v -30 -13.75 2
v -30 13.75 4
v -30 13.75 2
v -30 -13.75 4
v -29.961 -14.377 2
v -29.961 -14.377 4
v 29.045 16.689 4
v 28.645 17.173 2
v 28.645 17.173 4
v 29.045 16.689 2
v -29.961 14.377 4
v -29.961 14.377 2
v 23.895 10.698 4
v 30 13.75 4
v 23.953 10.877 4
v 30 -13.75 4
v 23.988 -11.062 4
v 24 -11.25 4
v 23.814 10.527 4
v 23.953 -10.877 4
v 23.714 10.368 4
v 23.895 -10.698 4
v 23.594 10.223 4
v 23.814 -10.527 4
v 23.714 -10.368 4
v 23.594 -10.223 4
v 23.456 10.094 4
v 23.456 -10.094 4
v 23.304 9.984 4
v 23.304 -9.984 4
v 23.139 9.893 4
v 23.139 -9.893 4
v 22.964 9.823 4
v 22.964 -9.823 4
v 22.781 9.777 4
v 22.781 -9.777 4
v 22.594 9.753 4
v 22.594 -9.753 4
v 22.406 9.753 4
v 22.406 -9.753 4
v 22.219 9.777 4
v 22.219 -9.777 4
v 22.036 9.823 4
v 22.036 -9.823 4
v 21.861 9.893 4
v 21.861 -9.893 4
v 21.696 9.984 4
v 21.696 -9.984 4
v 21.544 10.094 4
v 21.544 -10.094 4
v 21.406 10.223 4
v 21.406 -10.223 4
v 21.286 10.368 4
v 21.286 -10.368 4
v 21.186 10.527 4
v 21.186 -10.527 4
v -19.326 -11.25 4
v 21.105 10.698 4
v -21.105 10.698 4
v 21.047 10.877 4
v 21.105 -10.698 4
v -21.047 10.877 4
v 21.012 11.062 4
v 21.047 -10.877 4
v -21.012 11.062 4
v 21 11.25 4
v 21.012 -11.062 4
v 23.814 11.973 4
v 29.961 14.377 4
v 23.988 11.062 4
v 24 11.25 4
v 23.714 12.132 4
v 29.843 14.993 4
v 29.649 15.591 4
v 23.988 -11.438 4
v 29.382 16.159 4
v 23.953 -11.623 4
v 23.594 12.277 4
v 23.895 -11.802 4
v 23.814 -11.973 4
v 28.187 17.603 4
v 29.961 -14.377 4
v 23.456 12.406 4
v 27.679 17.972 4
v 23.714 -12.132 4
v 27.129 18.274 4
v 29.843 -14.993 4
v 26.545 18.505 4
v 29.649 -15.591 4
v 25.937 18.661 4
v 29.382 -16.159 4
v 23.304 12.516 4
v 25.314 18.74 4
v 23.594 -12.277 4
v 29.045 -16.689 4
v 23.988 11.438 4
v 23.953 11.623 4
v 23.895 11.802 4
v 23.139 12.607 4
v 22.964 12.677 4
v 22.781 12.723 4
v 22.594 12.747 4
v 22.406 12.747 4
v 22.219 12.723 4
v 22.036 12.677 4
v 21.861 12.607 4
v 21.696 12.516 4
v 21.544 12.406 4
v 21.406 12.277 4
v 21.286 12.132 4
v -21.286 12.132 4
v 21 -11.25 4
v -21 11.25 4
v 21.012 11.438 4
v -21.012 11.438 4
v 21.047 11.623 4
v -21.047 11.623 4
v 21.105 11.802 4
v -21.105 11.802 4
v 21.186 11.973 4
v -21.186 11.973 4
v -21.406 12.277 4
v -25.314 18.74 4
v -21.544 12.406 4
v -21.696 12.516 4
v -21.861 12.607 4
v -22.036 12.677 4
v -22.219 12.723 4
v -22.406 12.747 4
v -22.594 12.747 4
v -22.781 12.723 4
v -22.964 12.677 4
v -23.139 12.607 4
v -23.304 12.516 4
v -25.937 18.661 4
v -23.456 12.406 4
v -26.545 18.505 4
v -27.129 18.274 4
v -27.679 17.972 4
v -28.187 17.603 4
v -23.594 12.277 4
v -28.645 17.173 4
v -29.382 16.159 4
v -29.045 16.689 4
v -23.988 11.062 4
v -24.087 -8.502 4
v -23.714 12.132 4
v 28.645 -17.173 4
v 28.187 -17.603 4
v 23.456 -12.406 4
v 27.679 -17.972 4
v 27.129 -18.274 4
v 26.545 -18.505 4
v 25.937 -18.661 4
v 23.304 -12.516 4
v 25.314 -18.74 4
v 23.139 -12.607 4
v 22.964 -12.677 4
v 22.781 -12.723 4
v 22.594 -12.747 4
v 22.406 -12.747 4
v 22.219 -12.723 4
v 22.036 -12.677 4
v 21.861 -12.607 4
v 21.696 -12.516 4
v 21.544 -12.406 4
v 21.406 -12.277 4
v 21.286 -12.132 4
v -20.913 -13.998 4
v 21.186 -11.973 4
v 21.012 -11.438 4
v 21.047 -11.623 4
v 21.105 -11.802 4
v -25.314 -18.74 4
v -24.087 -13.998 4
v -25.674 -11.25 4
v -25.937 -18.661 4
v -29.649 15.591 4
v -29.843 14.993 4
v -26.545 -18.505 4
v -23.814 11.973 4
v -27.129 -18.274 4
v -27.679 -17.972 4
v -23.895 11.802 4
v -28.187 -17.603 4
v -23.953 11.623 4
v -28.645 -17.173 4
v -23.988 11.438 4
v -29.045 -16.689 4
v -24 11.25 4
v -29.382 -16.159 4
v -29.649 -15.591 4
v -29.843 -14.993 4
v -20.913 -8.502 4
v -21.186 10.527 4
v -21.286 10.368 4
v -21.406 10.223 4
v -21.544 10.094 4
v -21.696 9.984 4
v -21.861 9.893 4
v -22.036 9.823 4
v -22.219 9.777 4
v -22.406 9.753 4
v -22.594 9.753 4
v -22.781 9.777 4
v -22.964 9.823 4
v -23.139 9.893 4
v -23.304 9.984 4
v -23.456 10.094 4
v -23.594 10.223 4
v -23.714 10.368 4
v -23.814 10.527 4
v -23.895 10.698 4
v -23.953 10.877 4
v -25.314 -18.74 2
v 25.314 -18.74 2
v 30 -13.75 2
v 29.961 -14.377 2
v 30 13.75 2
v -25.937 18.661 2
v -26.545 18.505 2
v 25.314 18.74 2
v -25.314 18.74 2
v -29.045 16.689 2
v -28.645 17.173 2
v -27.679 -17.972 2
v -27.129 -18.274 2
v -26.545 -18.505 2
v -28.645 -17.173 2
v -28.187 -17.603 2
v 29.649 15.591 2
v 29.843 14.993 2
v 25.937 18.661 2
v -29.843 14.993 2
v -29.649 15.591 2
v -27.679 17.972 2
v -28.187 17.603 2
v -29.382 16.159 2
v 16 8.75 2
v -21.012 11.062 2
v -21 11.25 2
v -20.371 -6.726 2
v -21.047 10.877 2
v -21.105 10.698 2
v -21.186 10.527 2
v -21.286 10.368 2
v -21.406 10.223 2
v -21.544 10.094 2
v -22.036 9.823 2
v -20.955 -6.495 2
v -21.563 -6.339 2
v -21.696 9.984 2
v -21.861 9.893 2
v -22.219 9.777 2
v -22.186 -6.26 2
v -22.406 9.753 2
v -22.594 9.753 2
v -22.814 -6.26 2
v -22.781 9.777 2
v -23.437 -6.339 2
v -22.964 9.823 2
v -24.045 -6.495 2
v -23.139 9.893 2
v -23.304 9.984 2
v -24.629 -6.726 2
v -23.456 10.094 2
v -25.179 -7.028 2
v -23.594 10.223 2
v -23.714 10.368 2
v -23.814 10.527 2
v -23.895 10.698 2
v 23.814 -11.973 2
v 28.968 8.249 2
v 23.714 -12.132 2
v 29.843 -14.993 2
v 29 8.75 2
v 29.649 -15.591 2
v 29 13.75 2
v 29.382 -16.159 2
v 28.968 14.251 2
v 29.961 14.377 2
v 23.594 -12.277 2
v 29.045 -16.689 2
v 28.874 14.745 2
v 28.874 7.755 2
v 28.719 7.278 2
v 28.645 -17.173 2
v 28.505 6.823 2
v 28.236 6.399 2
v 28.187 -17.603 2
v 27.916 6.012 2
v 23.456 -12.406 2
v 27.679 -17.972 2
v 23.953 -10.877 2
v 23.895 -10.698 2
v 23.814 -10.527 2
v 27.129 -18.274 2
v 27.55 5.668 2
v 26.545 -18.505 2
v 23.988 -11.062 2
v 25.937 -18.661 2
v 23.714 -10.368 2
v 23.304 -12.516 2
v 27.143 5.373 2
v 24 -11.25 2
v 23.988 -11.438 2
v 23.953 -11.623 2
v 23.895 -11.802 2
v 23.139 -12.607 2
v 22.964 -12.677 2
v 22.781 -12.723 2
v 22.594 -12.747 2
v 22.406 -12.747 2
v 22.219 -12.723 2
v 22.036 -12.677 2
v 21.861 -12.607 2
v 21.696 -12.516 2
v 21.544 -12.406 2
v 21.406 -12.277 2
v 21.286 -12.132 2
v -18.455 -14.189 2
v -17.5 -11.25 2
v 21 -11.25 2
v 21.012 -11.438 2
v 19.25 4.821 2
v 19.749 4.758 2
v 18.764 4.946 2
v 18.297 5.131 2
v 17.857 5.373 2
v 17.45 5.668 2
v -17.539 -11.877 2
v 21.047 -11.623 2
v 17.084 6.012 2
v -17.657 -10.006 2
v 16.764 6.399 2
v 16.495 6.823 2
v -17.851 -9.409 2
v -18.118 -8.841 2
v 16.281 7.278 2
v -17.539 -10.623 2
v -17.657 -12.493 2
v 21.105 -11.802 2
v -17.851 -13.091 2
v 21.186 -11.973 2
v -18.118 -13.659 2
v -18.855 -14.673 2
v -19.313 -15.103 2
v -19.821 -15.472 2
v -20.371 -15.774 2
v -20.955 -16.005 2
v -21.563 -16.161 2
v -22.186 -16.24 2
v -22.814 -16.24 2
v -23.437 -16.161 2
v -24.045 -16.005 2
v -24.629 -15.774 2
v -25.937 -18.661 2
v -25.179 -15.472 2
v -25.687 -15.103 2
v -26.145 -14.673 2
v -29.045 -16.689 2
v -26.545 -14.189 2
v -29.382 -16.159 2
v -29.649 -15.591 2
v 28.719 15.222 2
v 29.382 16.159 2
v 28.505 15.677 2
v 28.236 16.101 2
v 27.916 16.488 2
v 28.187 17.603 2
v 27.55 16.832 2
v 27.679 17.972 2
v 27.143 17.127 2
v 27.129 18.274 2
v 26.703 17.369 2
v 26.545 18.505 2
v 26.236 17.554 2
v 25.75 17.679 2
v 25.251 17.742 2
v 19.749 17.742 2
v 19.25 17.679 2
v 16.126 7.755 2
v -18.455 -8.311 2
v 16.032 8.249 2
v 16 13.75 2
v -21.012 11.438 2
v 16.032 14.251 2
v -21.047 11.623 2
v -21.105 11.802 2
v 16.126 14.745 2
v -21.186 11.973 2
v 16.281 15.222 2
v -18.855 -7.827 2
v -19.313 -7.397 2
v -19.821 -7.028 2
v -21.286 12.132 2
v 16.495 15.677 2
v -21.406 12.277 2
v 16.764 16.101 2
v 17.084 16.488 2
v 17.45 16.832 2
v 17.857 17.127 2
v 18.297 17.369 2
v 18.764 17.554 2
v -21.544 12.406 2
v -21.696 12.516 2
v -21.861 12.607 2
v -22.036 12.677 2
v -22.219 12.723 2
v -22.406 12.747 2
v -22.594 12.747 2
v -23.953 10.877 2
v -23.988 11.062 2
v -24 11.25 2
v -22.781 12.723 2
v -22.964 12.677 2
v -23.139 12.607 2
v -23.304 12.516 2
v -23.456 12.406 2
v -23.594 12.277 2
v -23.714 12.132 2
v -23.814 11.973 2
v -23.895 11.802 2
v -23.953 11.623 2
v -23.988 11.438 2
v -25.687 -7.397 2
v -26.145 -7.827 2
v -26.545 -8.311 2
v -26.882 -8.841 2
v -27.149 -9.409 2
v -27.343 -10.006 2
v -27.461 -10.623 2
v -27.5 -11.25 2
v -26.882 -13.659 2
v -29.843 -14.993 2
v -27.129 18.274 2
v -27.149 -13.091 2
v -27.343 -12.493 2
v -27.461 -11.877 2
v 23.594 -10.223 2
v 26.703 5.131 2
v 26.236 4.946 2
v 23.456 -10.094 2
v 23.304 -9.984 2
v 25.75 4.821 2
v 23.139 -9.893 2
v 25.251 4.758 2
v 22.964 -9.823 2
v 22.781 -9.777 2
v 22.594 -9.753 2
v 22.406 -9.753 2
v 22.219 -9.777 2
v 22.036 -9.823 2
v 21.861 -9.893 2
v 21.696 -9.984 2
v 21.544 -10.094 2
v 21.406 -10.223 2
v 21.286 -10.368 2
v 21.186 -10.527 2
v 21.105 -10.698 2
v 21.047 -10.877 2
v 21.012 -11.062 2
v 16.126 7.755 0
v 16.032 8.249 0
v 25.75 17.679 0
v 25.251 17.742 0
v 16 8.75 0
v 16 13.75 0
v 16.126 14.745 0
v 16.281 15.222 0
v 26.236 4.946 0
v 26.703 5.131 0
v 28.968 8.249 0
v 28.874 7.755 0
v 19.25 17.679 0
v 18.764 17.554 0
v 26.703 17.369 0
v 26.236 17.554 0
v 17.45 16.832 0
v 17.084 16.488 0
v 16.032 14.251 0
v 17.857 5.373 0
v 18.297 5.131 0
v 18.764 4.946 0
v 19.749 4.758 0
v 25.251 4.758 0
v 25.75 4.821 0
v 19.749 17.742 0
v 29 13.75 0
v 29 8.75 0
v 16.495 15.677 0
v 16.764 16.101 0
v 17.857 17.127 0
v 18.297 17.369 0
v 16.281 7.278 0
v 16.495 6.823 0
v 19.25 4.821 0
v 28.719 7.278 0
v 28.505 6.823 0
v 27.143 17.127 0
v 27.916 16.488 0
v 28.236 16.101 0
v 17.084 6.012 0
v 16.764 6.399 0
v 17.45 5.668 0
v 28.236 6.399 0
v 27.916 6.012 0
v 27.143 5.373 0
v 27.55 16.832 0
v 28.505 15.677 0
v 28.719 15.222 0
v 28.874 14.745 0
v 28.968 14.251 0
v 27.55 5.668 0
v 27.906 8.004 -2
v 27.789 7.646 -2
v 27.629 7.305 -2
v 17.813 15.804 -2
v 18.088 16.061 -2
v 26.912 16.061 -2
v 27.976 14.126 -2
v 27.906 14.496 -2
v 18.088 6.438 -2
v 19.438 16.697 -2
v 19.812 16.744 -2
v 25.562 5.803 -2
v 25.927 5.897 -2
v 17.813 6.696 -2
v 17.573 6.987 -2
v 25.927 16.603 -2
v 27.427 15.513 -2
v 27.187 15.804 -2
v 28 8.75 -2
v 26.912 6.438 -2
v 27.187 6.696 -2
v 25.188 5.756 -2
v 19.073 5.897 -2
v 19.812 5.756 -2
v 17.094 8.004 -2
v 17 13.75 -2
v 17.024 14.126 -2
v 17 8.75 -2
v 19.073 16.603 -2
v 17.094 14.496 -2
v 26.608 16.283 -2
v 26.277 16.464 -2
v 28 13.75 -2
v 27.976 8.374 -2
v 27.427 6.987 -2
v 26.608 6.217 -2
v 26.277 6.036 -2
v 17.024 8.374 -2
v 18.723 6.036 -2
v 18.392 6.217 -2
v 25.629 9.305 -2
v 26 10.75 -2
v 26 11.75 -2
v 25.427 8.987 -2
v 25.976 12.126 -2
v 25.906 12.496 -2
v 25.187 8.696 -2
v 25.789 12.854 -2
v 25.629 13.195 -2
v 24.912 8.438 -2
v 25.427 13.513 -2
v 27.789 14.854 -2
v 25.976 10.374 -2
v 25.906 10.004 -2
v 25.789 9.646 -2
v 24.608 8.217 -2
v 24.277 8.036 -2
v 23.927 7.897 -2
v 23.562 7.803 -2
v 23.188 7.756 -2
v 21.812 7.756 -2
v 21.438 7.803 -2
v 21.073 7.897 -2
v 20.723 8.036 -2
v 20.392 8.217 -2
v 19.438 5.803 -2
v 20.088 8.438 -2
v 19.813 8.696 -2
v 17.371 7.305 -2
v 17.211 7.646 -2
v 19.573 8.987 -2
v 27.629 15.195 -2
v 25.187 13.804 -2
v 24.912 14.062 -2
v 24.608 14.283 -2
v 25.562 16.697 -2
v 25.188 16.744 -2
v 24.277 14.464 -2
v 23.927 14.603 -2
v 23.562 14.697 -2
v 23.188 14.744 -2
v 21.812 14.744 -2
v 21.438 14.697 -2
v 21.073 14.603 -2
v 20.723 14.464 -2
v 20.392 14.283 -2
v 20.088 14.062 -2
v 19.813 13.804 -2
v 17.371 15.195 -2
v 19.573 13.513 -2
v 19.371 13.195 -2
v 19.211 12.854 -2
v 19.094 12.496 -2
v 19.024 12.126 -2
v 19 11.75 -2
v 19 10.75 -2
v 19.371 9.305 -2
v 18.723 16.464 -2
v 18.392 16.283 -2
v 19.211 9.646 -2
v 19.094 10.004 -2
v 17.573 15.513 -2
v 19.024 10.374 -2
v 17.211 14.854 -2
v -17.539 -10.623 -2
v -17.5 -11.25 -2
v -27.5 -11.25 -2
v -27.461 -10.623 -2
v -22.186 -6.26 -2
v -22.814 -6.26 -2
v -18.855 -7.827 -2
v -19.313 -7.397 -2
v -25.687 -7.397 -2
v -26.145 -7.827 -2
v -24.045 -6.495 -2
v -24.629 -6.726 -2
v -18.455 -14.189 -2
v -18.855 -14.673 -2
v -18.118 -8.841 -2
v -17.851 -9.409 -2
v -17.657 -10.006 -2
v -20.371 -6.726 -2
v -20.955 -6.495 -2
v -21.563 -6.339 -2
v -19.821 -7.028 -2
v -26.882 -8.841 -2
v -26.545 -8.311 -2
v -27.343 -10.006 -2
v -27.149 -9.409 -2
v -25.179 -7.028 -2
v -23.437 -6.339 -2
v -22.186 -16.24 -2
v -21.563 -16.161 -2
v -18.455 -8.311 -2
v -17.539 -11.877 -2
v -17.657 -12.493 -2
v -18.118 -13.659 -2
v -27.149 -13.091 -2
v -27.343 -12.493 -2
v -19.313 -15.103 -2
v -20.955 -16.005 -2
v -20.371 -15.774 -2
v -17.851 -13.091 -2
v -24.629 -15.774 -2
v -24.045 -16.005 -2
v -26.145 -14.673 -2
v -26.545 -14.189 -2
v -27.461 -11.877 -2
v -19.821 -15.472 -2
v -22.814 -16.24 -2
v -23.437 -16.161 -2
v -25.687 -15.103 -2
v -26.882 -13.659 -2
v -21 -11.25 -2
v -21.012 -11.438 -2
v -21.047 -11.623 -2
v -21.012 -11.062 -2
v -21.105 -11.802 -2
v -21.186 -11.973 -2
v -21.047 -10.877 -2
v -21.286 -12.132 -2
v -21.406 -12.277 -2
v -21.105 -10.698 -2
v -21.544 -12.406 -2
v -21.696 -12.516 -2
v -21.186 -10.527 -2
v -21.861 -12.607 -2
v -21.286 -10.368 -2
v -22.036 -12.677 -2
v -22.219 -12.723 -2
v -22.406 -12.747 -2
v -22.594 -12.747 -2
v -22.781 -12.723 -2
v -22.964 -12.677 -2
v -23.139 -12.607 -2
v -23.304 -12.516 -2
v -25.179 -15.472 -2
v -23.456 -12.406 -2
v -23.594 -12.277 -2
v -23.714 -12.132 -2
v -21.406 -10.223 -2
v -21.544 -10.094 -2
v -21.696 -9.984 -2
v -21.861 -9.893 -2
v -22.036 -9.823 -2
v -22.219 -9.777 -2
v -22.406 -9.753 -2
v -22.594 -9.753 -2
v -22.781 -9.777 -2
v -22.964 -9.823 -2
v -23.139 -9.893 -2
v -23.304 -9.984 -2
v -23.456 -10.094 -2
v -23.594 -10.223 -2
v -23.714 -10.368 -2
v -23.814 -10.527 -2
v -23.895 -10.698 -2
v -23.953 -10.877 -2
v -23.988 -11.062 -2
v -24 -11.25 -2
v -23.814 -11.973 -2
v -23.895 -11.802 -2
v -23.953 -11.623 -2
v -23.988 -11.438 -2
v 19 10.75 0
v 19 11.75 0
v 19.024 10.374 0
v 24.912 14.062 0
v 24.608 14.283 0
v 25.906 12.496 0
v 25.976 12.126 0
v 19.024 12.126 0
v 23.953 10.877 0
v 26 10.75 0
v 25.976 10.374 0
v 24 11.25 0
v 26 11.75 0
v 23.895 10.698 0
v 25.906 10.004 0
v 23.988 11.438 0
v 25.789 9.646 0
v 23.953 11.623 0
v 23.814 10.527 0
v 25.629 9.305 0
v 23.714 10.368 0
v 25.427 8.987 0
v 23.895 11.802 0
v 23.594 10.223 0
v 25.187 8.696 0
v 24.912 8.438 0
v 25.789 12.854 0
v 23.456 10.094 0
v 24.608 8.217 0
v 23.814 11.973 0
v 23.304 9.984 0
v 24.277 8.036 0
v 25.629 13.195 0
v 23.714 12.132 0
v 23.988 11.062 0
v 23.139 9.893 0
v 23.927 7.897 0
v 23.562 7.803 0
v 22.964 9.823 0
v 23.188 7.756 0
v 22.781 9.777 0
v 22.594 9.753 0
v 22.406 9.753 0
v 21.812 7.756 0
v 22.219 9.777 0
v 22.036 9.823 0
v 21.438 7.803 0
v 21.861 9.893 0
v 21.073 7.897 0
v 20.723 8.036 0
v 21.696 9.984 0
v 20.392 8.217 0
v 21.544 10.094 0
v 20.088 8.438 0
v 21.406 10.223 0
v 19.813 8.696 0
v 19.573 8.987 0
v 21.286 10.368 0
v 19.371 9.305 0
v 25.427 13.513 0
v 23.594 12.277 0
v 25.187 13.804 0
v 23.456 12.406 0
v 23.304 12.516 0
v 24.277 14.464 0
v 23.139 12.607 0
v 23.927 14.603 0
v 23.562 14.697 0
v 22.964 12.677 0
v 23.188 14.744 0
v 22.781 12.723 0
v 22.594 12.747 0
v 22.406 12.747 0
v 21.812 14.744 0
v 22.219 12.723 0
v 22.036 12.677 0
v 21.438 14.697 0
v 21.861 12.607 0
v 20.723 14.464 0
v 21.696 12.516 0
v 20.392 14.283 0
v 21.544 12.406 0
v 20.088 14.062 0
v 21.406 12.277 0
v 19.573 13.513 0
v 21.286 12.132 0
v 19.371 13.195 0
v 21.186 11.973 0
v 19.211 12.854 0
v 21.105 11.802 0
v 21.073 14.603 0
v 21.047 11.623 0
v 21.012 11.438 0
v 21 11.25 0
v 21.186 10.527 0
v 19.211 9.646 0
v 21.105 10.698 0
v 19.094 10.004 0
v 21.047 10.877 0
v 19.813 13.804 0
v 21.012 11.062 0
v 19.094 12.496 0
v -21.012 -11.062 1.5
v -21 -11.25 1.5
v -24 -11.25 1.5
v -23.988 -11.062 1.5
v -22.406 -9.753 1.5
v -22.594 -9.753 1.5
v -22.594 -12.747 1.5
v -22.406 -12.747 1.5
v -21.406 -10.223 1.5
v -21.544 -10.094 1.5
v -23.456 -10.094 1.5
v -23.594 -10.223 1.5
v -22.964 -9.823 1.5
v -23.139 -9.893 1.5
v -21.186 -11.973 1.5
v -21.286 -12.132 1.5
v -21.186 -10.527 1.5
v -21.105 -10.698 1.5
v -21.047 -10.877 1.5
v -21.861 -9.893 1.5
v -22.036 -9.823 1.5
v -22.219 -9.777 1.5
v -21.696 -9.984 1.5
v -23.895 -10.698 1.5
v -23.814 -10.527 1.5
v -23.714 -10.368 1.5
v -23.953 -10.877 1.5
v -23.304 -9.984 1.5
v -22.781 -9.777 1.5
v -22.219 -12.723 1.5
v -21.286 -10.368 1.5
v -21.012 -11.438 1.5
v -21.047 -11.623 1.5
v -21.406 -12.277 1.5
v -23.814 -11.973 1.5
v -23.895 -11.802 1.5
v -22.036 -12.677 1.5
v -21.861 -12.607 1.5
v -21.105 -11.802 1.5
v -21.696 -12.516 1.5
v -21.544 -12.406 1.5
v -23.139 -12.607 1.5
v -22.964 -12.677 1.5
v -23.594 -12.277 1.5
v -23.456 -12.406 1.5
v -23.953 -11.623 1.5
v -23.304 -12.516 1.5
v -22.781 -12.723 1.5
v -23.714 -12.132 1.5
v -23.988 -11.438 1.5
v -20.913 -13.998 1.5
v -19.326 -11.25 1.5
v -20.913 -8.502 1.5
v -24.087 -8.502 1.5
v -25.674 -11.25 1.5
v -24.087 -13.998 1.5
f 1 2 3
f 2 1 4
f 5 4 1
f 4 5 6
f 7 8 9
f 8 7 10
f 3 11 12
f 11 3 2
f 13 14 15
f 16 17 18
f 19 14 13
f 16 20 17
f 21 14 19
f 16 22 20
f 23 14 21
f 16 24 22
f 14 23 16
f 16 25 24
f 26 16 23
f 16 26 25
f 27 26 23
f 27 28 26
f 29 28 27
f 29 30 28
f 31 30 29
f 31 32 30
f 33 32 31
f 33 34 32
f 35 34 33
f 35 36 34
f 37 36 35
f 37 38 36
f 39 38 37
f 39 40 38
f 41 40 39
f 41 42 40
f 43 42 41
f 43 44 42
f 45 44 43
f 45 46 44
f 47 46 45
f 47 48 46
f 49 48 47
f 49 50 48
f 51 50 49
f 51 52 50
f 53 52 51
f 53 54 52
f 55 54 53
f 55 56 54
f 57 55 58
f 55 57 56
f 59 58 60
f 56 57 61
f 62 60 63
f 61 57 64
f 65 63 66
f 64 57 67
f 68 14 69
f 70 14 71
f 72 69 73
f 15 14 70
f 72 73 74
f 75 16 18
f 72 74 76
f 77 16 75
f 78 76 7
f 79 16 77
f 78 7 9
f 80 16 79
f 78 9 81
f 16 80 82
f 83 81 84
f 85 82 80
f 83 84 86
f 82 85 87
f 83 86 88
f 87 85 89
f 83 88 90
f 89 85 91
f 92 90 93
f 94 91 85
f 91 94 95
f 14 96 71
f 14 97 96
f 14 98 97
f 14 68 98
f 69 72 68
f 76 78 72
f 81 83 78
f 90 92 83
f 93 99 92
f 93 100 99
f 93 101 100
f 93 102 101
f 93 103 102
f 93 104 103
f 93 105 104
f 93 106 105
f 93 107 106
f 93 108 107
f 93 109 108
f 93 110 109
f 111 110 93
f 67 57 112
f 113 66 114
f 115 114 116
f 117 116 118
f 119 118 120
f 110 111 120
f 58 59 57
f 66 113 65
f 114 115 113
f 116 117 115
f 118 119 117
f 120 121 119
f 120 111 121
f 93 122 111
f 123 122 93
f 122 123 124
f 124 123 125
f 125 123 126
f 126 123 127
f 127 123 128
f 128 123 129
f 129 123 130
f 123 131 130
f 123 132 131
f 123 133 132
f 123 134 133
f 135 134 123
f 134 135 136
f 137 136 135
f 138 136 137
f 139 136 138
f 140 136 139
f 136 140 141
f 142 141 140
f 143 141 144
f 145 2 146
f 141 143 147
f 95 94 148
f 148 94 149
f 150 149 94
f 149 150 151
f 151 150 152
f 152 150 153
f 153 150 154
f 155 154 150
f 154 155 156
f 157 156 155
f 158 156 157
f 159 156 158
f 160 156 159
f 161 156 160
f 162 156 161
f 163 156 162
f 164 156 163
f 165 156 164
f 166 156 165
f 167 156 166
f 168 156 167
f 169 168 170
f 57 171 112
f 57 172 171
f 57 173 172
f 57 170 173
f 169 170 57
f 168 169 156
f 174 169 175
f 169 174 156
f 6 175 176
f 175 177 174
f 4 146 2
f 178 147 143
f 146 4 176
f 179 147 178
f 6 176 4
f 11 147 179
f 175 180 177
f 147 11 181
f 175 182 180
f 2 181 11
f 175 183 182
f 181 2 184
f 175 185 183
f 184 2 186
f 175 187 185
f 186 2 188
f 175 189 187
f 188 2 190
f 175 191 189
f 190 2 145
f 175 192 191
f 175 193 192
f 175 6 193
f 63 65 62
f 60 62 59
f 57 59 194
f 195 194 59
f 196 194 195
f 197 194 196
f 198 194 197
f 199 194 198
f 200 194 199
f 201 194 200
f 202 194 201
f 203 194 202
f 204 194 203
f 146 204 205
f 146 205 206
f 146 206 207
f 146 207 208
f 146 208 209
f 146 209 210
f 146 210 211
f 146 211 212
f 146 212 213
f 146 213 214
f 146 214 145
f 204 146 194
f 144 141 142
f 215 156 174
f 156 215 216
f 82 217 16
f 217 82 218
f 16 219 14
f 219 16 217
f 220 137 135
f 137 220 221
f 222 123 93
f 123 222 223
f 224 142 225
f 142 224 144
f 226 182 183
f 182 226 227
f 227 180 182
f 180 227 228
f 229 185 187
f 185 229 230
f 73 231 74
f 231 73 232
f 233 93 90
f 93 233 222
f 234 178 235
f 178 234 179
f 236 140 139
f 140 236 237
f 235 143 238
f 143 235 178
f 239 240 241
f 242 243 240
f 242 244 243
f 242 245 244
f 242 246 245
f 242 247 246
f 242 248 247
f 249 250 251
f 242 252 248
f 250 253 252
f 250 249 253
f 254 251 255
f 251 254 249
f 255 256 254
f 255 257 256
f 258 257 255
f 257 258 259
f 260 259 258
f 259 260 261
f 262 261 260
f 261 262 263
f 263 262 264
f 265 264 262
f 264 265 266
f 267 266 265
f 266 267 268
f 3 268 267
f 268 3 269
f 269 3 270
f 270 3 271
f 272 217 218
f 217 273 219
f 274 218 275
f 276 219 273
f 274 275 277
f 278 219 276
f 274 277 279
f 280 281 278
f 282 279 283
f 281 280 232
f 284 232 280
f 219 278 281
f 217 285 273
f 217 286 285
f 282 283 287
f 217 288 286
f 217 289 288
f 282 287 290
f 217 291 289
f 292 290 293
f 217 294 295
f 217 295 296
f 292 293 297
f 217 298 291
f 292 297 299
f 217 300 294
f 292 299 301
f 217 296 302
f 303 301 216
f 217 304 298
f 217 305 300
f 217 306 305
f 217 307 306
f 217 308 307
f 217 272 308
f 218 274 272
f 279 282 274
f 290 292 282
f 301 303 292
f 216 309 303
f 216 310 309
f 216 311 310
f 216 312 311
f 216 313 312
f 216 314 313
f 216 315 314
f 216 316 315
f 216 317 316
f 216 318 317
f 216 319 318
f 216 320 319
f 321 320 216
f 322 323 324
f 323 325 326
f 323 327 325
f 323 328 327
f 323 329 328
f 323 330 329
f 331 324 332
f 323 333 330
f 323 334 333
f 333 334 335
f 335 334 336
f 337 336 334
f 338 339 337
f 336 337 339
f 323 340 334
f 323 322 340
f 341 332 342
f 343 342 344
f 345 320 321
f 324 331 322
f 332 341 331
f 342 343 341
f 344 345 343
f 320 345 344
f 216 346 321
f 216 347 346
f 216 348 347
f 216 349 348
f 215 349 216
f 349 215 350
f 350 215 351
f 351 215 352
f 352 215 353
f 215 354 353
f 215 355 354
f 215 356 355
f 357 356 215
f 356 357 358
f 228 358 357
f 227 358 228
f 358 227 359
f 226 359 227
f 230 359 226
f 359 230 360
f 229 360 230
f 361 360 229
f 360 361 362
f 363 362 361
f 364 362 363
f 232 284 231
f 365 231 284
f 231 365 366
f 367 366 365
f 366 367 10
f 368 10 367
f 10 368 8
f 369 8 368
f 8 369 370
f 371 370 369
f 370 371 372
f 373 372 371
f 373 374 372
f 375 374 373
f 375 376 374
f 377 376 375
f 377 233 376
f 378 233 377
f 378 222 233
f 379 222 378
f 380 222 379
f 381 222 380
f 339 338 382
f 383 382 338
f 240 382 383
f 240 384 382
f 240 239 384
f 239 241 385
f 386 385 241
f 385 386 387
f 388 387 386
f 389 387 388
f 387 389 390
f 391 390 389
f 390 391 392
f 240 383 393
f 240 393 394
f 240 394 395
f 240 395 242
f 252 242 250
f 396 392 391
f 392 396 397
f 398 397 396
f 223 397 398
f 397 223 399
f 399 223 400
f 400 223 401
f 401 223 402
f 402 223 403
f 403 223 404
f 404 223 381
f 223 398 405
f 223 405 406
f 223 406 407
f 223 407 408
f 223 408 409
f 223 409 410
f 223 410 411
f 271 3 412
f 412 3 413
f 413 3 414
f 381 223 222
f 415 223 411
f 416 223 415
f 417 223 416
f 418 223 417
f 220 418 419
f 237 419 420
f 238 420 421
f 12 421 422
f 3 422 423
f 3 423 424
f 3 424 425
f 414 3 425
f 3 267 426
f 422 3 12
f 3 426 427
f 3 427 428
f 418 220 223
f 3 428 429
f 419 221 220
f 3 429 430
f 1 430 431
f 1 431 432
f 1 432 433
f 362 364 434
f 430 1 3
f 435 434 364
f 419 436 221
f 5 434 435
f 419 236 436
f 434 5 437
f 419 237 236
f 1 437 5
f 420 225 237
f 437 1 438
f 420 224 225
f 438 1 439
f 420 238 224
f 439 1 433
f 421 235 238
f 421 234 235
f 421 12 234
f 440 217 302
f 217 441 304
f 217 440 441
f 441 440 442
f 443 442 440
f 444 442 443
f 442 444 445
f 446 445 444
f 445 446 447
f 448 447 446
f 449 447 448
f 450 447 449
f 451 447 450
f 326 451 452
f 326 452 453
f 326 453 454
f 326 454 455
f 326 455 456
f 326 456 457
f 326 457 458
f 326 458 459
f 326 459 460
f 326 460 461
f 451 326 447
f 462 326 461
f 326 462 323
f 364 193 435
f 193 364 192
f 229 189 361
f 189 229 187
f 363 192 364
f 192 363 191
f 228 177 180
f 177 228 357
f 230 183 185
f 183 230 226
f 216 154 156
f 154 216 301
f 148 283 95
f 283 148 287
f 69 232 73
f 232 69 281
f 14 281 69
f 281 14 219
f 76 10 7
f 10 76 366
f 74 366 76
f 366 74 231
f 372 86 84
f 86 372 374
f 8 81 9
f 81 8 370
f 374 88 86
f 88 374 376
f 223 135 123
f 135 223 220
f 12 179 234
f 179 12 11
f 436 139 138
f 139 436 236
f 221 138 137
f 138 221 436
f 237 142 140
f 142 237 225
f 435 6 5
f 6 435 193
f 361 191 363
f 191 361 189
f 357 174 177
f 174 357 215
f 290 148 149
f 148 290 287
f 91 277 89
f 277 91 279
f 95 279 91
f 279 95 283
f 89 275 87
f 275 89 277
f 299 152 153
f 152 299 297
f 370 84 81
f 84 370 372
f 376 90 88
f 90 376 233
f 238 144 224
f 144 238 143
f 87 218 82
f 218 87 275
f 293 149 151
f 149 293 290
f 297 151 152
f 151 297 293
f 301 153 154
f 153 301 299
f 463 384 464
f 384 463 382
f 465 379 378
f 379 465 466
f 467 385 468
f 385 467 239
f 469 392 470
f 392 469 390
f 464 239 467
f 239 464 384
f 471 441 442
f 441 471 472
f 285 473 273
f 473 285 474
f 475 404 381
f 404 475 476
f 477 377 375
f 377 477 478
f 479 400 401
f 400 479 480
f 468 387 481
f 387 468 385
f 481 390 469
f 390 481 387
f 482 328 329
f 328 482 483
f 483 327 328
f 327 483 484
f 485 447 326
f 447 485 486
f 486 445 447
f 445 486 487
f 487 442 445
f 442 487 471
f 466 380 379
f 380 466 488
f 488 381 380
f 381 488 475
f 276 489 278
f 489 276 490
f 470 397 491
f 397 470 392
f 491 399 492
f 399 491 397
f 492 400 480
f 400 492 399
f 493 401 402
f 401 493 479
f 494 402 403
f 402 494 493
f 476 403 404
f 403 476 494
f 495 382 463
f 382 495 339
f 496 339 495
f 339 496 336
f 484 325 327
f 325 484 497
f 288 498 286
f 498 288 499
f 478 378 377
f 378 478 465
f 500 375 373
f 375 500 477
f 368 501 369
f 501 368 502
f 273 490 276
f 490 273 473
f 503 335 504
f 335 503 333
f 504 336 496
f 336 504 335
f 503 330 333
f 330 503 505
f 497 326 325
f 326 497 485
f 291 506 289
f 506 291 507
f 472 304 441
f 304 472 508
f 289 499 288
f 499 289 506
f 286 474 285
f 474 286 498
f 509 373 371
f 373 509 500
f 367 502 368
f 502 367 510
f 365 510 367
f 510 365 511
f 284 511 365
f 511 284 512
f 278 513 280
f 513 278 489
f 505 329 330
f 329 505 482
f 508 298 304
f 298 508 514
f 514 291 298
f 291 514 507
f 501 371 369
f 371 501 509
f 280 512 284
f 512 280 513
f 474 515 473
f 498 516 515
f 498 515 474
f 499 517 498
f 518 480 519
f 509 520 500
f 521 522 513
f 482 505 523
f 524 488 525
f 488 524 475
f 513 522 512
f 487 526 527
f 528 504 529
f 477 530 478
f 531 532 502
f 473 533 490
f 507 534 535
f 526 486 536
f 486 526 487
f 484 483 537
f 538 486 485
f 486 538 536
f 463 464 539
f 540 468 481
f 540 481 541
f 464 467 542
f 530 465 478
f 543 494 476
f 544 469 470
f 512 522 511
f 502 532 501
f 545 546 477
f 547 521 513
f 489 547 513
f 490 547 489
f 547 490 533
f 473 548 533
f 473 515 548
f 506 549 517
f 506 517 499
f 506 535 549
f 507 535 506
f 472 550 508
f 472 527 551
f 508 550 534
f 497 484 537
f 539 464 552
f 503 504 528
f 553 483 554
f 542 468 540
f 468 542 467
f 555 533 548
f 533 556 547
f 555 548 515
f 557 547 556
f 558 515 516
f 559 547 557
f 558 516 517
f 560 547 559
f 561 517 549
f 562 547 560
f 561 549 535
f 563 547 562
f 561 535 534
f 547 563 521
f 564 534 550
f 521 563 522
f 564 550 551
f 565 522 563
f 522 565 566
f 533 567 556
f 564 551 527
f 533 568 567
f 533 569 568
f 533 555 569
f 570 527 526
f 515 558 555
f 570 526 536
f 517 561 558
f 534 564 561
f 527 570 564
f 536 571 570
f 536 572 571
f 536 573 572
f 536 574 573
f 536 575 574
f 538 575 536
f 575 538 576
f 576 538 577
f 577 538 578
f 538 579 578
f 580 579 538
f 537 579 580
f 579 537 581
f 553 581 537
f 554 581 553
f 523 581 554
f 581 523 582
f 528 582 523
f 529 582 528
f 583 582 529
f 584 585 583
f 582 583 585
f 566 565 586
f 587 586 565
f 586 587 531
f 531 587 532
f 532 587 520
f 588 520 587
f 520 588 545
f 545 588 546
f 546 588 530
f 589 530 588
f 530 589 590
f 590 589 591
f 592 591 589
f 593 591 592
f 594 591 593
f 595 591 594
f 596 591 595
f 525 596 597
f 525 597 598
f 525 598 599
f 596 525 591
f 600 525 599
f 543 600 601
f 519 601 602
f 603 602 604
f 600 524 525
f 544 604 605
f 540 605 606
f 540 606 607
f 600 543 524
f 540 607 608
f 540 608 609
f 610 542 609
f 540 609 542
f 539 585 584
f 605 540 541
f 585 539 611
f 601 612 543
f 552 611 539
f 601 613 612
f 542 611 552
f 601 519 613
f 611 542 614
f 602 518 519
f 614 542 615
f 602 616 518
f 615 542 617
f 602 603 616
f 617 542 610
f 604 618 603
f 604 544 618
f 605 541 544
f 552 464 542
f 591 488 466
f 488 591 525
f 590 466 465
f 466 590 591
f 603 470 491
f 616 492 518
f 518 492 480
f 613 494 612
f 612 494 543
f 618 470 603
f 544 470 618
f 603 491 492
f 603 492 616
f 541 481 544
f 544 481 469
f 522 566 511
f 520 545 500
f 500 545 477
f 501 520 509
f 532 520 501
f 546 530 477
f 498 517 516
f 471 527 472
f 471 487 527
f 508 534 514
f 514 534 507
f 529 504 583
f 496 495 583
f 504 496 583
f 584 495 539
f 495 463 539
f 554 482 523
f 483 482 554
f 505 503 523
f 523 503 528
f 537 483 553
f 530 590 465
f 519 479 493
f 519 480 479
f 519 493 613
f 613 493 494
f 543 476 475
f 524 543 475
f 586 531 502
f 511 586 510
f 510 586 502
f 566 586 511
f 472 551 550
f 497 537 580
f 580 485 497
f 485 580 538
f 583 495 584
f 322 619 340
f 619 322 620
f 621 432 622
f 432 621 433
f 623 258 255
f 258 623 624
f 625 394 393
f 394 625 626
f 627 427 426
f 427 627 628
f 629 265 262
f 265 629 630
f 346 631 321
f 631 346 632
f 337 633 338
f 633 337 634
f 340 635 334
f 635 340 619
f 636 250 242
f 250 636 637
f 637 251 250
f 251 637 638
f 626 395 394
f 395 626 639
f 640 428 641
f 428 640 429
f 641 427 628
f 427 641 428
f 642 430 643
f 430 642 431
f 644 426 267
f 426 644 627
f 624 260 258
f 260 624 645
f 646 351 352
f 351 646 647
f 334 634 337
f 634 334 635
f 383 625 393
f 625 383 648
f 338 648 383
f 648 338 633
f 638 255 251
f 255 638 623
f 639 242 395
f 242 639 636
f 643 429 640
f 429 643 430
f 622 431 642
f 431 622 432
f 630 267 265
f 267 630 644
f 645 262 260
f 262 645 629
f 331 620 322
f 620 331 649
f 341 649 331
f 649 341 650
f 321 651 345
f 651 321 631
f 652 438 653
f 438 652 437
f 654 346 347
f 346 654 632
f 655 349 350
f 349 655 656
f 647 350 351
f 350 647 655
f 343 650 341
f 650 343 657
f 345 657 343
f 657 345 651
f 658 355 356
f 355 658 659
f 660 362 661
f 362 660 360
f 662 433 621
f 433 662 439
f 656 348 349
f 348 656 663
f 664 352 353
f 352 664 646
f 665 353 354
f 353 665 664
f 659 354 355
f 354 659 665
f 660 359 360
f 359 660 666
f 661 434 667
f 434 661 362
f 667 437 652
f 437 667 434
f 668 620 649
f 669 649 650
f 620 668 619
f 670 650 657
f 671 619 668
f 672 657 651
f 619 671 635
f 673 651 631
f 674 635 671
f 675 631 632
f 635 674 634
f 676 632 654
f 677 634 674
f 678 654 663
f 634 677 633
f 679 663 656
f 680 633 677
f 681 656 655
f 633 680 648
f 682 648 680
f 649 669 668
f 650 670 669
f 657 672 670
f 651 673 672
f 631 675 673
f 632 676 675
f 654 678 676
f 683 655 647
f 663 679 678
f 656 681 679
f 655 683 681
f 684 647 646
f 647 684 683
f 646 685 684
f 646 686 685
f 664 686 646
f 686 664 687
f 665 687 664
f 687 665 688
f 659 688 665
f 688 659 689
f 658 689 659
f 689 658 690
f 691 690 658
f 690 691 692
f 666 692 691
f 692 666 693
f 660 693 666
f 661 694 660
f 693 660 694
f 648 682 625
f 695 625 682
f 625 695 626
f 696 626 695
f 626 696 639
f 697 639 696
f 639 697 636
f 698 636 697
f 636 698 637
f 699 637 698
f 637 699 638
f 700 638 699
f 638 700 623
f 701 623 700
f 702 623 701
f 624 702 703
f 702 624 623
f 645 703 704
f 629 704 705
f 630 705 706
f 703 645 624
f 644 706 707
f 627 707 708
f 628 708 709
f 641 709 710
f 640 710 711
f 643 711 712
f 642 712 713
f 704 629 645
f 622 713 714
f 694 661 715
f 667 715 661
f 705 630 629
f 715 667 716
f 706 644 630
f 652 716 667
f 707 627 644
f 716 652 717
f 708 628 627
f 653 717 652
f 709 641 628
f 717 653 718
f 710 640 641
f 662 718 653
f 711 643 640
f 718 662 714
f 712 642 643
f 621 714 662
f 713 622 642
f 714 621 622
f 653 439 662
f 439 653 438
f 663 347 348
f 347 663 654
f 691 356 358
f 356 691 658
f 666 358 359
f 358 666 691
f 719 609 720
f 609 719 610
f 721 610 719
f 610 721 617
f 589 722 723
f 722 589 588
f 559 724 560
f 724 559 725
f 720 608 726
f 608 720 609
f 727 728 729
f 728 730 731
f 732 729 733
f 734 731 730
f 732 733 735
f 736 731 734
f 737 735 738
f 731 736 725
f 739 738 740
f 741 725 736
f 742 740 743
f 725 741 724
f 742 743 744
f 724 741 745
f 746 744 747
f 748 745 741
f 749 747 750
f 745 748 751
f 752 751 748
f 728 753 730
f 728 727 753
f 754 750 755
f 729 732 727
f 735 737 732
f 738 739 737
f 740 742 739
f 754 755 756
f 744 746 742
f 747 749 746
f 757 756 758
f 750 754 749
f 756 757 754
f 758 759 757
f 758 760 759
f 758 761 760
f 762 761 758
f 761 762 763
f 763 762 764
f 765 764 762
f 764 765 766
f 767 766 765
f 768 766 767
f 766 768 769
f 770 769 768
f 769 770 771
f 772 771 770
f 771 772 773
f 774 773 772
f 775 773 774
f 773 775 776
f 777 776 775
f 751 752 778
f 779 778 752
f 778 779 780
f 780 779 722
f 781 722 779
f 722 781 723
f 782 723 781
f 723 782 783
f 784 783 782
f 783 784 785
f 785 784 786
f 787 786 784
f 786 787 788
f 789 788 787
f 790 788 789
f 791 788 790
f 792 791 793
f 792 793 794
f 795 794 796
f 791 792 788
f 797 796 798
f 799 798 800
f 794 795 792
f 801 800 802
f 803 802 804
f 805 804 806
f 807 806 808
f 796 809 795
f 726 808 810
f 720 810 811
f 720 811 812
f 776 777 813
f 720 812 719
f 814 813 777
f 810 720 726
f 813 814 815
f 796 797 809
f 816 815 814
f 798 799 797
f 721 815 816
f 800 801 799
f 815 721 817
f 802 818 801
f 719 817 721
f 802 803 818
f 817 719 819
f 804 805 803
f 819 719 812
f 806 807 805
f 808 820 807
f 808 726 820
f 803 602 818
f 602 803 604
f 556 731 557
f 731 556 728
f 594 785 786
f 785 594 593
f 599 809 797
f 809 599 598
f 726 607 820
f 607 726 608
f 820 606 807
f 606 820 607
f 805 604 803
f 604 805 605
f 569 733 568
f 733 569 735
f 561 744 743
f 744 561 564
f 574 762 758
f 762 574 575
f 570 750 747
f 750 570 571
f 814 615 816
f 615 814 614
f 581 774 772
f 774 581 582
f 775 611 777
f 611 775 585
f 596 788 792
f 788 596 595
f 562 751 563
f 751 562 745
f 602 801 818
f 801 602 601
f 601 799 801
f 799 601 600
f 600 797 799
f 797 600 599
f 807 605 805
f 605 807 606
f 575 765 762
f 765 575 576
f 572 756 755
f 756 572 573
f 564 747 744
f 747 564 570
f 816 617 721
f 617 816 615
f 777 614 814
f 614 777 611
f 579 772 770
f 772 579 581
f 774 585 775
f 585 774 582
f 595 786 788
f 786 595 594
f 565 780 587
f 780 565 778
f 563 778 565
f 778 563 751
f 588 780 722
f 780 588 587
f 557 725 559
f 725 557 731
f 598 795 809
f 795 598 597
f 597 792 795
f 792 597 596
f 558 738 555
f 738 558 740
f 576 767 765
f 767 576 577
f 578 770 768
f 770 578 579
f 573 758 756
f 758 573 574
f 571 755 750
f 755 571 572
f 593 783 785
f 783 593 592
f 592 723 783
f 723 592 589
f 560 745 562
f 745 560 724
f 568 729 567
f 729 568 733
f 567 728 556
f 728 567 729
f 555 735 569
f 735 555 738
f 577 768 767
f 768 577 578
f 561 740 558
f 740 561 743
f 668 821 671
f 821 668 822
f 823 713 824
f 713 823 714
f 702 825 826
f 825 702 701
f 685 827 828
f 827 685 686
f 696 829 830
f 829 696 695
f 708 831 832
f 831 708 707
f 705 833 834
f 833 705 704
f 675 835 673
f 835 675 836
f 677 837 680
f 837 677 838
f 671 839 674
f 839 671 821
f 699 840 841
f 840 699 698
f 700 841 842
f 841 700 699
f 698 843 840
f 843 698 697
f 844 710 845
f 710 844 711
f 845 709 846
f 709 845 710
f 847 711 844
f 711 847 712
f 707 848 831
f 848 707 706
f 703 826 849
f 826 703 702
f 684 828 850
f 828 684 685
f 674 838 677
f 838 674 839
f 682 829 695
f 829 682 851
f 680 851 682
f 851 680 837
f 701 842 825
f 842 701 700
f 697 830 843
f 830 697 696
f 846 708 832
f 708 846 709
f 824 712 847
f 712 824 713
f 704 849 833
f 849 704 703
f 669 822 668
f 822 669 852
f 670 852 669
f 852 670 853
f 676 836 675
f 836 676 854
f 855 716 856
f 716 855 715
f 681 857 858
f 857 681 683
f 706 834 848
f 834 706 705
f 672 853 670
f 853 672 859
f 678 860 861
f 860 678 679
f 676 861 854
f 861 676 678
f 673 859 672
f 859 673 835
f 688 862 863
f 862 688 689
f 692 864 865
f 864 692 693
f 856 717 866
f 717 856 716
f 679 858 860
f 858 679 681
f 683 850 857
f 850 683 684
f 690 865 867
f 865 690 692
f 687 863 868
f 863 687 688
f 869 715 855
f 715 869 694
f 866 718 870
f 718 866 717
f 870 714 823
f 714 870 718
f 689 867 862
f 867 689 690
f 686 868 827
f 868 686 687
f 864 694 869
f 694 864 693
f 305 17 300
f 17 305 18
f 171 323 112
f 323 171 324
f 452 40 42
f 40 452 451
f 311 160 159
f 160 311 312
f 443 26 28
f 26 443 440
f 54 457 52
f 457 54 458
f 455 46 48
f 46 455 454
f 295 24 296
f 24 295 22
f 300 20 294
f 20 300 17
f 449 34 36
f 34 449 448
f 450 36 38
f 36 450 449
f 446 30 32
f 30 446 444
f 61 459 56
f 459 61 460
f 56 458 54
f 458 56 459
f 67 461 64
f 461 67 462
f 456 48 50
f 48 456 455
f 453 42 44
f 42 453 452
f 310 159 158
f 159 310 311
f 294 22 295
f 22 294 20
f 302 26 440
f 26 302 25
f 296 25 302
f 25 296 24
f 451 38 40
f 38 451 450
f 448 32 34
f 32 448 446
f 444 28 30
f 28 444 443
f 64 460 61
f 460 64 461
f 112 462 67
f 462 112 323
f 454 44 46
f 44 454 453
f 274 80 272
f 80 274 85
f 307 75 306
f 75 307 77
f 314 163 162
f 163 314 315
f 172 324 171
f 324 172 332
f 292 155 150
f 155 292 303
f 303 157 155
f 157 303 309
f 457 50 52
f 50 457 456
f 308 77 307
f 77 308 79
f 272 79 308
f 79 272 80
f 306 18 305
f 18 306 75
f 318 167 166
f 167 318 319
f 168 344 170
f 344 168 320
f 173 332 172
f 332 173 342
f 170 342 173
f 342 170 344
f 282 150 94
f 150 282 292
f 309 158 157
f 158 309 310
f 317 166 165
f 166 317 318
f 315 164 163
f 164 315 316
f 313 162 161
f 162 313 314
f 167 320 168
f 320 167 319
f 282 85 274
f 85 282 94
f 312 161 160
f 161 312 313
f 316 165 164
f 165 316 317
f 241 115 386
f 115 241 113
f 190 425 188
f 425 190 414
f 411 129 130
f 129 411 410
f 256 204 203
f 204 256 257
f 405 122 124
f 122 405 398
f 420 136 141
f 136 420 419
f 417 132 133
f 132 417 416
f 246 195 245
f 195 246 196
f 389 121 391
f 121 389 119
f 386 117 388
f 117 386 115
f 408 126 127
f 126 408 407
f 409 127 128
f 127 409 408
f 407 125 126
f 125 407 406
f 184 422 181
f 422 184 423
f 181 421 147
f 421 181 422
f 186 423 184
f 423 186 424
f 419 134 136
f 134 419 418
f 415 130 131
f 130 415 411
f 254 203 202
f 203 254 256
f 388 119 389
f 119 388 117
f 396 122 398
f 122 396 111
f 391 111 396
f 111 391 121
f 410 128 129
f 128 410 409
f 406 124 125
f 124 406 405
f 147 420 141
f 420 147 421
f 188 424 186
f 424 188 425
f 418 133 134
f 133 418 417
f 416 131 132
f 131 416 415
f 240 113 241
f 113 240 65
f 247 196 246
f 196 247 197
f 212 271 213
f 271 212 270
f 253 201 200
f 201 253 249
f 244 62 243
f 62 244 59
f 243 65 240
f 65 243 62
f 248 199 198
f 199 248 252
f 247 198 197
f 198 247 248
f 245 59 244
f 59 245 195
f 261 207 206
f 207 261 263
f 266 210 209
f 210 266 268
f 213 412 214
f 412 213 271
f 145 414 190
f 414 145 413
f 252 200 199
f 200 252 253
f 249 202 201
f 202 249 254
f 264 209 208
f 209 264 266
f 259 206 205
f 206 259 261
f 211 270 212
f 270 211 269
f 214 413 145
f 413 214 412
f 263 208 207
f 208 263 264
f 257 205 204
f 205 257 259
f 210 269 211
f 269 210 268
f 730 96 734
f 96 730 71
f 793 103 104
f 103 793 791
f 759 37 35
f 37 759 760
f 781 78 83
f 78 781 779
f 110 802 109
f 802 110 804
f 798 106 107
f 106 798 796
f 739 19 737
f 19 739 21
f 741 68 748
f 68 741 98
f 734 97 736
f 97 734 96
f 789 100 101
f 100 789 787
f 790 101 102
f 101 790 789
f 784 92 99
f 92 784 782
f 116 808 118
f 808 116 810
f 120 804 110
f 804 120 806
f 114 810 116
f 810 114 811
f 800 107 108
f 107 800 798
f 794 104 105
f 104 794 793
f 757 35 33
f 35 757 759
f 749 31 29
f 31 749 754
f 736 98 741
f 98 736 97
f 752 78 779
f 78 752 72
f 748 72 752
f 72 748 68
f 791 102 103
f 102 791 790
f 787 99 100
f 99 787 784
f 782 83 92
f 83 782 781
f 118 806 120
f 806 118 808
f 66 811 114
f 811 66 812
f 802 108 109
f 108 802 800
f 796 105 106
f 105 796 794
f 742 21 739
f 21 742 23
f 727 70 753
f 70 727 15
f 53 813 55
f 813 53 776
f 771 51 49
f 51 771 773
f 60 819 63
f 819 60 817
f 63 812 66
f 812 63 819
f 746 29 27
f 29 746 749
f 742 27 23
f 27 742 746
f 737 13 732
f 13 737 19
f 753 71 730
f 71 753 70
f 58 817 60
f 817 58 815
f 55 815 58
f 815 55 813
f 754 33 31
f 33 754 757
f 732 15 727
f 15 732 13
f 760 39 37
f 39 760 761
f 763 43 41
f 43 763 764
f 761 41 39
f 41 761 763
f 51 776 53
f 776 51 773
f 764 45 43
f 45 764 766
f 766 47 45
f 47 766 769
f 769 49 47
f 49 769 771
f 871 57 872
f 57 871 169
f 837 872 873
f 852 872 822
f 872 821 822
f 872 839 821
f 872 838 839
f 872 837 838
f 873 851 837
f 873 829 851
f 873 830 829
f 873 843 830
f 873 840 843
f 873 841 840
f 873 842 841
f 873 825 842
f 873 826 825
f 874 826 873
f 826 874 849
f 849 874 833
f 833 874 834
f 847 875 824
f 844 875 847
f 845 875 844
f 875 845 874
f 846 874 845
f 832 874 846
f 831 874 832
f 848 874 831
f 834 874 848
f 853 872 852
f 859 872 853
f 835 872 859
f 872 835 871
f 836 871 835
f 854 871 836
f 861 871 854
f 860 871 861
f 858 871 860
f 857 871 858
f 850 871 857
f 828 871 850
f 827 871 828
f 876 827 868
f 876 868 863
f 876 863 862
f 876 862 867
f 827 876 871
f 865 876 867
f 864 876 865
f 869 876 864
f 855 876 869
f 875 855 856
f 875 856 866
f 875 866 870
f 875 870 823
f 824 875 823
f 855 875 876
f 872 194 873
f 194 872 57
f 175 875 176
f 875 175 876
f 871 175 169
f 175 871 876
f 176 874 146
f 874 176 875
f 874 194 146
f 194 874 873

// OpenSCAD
$fn = 50;


difference() {
	union() {
		translate(v = [0, 0, 2]) {
			rotate(a = [0, 0, 0]) {
				hull() {
					translate(v = [-25.0000000000, 13.7500000000, 0]) {
						rotate(a = [0, 0, 0]) {
							translate(v = [0, 0, 0]) {
								rotate(a = [0, 0, 0]) {
									cylinder(h = 2, r = 5);
								}
							}
						}
					}
					translate(v = [25.0000000000, 13.7500000000, 0]) {
						rotate(a = [0, 0, 0]) {
							translate(v = [0, 0, 0]) {
								rotate(a = [0, 0, 0]) {
									cylinder(h = 2, r = 5);
								}
							}
						}
					}
					translate(v = [-25.0000000000, -13.7500000000, 0]) {
						rotate(a = [0, 0, 0]) {
							translate(v = [0, 0, 0]) {
								rotate(a = [0, 0, 0]) {
									cylinder(h = 2, r = 5);
								}
							}
						}
					}
					translate(v = [25.0000000000, -13.7500000000, 0]) {
						rotate(a = [0, 0, 0]) {
							translate(v = [0, 0, 0]) {
								rotate(a = [0, 0, 0]) {
									cylinder(h = 2, r = 5);
								}
							}
						}
					}
				}
			}
		}
		translate(v = [22.5000000000, 11.2500000000, 0]) {
			rotate(a = [0, 0, 0]) {
				hull() {
					translate(v = [-2.5000000000, 2.5000000000, 0]) {
						rotate(a = [0, 0, 0]) {
							cylinder(h = 2, r1 = 4.0000000000, r2 = 4.0000000000);
						}
					}
					translate(v = [2.5000000000, 2.5000000000, 0]) {
						rotate(a = [0, 0, 0]) {
							cylinder(h = 2, r1 = 4.0000000000, r2 = 4.0000000000);
						}
					}
					translate(v = [-2.5000000000, -2.5000000000, 0]) {
						rotate(a = [0, 0, 0]) {
							cylinder(h = 2, r1 = 4.0000000000, r2 = 4.0000000000);
						}
					}
					translate(v = [2.5000000000, -2.5000000000, 0]) {
						rotate(a = [0, 0, 0]) {
							cylinder(h = 2, r1 = 4.0000000000, r2 = 4.0000000000);
						}
					}
				}
			}
		}
		translate(v = [22.5000000000, 11.2500000000, -2]) {
			rotate(a = [0, 180, 0]) {
				hull() {
					translate(v = [-2.5000000000, 2.5000000000, 0]) {
						rotate(a = [0, 180, 0]) {
							cylinder(h = 2, r1 = 3.0000000000, r2 = 4.0000000000);
						}
					}
					translate(v = [2.5000000000, 2.5000000000, 0]) {
						rotate(a = [0, 180, 0]) {
							cylinder(h = 2, r1 = 3.0000000000, r2 = 4.0000000000);
						}
					}
					translate(v = [-2.5000000000, -2.5000000000, 0]) {
						rotate(a = [0, 180, 0]) {
							cylinder(h = 2, r1 = 3.0000000000, r2 = 4.0000000000);
						}
					}
					translate(v = [2.5000000000, -2.5000000000, 0]) {
						rotate(a = [0, 180, 0]) {
							cylinder(h = 2, r1 = 3.0000000000, r2 = 4.0000000000);
						}
					}
				}
			}
		}
		translate(v = [-22.5000000000, -11.2500000000, -2.0000000000]) {
			rotate(a = [0, 0, 0]) {
				cylinder(h = 4, r = 5);
			}
		}
	}
	union() {
		translate(v = [22.5000000000, 11.2500000000, -2]) {
			rotate(a = [0, 0, 0]) {
				hull() {
					translate(v = [-0.5000000000, 0.5000000000, 0]) {
						rotate(a = [0, 0, 0]) {
							translate(v = [0, 0, 0]) {
								rotate(a = [0, 0, 0]) {
									cylinder(h = 2, r = 3.0000000000);
								}
							}
						}
					}
					translate(v = [0.5000000000, 0.5000000000, 0]) {
						rotate(a = [0, 0, 0]) {
							translate(v = [0, 0, 0]) {
								rotate(a = [0, 0, 0]) {
									cylinder(h = 2, r = 3.0000000000);
								}
							}
						}
					}
					translate(v = [-0.5000000000, -0.5000000000, 0]) {
						rotate(a = [0, 0, 0]) {
							translate(v = [0, 0, 0]) {
								rotate(a = [0, 0, 0]) {
									cylinder(h = 2, r = 3.0000000000);
								}
							}
						}
					}
					translate(v = [0.5000000000, -0.5000000000, 0]) {
						rotate(a = [0, 0, 0]) {
							translate(v = [0, 0, 0]) {
								rotate(a = [0, 0, 0]) {
									cylinder(h = 2, r = 3.0000000000);
								}
							}
						}
					}
				}
			}
		}
		translate(v = [-22.5000000000, -11.2500000000, -50]) {
			rotate(a = [0, 0, 0]) {
				cylinder(h = 100, r = 1.5000000000);
			}
		}
		translate(v = [22.5000000000, -11.2500000000, -50]) {
			rotate(a = [0, 0, 0]) {
				cylinder(h = 100, r = 1.5000000000);
			}
		}
		translate(v = [-22.5000000000, 11.2500000000, -50]) {
			rotate(a = [0, 0, 0]) {
				cylinder(h = 100, r = 1.5000000000);
			}
		}
		translate(v = [22.5000000000, 11.2500000000, -50]) {
			rotate(a = [0, 0, 0]) {
				cylinder(h = 100, r = 1.5000000000);
			}
		}
		translate(v = [-22.5000000000, -11.2500000000, 1.5000000000]) {
			rotate(a = [0, 0, 0]) {
				#translate(v = [0, 0, 0]) {
					rotate(a = [0, 0, 0]) {
						linear_extrude(height = 2.5000000000) {
							polygon(points = [[3.1735000000, 0.0000000000], [1.5867500000, 2.7483316189], [-1.5867500000, 2.7483316189], [-3.1735000000, 0.0000000000], [-1.5867500000, -2.7483316189], [1.5867500000, -2.7483316189]]);
						}
					}
				}
			}
		}
	}
}
